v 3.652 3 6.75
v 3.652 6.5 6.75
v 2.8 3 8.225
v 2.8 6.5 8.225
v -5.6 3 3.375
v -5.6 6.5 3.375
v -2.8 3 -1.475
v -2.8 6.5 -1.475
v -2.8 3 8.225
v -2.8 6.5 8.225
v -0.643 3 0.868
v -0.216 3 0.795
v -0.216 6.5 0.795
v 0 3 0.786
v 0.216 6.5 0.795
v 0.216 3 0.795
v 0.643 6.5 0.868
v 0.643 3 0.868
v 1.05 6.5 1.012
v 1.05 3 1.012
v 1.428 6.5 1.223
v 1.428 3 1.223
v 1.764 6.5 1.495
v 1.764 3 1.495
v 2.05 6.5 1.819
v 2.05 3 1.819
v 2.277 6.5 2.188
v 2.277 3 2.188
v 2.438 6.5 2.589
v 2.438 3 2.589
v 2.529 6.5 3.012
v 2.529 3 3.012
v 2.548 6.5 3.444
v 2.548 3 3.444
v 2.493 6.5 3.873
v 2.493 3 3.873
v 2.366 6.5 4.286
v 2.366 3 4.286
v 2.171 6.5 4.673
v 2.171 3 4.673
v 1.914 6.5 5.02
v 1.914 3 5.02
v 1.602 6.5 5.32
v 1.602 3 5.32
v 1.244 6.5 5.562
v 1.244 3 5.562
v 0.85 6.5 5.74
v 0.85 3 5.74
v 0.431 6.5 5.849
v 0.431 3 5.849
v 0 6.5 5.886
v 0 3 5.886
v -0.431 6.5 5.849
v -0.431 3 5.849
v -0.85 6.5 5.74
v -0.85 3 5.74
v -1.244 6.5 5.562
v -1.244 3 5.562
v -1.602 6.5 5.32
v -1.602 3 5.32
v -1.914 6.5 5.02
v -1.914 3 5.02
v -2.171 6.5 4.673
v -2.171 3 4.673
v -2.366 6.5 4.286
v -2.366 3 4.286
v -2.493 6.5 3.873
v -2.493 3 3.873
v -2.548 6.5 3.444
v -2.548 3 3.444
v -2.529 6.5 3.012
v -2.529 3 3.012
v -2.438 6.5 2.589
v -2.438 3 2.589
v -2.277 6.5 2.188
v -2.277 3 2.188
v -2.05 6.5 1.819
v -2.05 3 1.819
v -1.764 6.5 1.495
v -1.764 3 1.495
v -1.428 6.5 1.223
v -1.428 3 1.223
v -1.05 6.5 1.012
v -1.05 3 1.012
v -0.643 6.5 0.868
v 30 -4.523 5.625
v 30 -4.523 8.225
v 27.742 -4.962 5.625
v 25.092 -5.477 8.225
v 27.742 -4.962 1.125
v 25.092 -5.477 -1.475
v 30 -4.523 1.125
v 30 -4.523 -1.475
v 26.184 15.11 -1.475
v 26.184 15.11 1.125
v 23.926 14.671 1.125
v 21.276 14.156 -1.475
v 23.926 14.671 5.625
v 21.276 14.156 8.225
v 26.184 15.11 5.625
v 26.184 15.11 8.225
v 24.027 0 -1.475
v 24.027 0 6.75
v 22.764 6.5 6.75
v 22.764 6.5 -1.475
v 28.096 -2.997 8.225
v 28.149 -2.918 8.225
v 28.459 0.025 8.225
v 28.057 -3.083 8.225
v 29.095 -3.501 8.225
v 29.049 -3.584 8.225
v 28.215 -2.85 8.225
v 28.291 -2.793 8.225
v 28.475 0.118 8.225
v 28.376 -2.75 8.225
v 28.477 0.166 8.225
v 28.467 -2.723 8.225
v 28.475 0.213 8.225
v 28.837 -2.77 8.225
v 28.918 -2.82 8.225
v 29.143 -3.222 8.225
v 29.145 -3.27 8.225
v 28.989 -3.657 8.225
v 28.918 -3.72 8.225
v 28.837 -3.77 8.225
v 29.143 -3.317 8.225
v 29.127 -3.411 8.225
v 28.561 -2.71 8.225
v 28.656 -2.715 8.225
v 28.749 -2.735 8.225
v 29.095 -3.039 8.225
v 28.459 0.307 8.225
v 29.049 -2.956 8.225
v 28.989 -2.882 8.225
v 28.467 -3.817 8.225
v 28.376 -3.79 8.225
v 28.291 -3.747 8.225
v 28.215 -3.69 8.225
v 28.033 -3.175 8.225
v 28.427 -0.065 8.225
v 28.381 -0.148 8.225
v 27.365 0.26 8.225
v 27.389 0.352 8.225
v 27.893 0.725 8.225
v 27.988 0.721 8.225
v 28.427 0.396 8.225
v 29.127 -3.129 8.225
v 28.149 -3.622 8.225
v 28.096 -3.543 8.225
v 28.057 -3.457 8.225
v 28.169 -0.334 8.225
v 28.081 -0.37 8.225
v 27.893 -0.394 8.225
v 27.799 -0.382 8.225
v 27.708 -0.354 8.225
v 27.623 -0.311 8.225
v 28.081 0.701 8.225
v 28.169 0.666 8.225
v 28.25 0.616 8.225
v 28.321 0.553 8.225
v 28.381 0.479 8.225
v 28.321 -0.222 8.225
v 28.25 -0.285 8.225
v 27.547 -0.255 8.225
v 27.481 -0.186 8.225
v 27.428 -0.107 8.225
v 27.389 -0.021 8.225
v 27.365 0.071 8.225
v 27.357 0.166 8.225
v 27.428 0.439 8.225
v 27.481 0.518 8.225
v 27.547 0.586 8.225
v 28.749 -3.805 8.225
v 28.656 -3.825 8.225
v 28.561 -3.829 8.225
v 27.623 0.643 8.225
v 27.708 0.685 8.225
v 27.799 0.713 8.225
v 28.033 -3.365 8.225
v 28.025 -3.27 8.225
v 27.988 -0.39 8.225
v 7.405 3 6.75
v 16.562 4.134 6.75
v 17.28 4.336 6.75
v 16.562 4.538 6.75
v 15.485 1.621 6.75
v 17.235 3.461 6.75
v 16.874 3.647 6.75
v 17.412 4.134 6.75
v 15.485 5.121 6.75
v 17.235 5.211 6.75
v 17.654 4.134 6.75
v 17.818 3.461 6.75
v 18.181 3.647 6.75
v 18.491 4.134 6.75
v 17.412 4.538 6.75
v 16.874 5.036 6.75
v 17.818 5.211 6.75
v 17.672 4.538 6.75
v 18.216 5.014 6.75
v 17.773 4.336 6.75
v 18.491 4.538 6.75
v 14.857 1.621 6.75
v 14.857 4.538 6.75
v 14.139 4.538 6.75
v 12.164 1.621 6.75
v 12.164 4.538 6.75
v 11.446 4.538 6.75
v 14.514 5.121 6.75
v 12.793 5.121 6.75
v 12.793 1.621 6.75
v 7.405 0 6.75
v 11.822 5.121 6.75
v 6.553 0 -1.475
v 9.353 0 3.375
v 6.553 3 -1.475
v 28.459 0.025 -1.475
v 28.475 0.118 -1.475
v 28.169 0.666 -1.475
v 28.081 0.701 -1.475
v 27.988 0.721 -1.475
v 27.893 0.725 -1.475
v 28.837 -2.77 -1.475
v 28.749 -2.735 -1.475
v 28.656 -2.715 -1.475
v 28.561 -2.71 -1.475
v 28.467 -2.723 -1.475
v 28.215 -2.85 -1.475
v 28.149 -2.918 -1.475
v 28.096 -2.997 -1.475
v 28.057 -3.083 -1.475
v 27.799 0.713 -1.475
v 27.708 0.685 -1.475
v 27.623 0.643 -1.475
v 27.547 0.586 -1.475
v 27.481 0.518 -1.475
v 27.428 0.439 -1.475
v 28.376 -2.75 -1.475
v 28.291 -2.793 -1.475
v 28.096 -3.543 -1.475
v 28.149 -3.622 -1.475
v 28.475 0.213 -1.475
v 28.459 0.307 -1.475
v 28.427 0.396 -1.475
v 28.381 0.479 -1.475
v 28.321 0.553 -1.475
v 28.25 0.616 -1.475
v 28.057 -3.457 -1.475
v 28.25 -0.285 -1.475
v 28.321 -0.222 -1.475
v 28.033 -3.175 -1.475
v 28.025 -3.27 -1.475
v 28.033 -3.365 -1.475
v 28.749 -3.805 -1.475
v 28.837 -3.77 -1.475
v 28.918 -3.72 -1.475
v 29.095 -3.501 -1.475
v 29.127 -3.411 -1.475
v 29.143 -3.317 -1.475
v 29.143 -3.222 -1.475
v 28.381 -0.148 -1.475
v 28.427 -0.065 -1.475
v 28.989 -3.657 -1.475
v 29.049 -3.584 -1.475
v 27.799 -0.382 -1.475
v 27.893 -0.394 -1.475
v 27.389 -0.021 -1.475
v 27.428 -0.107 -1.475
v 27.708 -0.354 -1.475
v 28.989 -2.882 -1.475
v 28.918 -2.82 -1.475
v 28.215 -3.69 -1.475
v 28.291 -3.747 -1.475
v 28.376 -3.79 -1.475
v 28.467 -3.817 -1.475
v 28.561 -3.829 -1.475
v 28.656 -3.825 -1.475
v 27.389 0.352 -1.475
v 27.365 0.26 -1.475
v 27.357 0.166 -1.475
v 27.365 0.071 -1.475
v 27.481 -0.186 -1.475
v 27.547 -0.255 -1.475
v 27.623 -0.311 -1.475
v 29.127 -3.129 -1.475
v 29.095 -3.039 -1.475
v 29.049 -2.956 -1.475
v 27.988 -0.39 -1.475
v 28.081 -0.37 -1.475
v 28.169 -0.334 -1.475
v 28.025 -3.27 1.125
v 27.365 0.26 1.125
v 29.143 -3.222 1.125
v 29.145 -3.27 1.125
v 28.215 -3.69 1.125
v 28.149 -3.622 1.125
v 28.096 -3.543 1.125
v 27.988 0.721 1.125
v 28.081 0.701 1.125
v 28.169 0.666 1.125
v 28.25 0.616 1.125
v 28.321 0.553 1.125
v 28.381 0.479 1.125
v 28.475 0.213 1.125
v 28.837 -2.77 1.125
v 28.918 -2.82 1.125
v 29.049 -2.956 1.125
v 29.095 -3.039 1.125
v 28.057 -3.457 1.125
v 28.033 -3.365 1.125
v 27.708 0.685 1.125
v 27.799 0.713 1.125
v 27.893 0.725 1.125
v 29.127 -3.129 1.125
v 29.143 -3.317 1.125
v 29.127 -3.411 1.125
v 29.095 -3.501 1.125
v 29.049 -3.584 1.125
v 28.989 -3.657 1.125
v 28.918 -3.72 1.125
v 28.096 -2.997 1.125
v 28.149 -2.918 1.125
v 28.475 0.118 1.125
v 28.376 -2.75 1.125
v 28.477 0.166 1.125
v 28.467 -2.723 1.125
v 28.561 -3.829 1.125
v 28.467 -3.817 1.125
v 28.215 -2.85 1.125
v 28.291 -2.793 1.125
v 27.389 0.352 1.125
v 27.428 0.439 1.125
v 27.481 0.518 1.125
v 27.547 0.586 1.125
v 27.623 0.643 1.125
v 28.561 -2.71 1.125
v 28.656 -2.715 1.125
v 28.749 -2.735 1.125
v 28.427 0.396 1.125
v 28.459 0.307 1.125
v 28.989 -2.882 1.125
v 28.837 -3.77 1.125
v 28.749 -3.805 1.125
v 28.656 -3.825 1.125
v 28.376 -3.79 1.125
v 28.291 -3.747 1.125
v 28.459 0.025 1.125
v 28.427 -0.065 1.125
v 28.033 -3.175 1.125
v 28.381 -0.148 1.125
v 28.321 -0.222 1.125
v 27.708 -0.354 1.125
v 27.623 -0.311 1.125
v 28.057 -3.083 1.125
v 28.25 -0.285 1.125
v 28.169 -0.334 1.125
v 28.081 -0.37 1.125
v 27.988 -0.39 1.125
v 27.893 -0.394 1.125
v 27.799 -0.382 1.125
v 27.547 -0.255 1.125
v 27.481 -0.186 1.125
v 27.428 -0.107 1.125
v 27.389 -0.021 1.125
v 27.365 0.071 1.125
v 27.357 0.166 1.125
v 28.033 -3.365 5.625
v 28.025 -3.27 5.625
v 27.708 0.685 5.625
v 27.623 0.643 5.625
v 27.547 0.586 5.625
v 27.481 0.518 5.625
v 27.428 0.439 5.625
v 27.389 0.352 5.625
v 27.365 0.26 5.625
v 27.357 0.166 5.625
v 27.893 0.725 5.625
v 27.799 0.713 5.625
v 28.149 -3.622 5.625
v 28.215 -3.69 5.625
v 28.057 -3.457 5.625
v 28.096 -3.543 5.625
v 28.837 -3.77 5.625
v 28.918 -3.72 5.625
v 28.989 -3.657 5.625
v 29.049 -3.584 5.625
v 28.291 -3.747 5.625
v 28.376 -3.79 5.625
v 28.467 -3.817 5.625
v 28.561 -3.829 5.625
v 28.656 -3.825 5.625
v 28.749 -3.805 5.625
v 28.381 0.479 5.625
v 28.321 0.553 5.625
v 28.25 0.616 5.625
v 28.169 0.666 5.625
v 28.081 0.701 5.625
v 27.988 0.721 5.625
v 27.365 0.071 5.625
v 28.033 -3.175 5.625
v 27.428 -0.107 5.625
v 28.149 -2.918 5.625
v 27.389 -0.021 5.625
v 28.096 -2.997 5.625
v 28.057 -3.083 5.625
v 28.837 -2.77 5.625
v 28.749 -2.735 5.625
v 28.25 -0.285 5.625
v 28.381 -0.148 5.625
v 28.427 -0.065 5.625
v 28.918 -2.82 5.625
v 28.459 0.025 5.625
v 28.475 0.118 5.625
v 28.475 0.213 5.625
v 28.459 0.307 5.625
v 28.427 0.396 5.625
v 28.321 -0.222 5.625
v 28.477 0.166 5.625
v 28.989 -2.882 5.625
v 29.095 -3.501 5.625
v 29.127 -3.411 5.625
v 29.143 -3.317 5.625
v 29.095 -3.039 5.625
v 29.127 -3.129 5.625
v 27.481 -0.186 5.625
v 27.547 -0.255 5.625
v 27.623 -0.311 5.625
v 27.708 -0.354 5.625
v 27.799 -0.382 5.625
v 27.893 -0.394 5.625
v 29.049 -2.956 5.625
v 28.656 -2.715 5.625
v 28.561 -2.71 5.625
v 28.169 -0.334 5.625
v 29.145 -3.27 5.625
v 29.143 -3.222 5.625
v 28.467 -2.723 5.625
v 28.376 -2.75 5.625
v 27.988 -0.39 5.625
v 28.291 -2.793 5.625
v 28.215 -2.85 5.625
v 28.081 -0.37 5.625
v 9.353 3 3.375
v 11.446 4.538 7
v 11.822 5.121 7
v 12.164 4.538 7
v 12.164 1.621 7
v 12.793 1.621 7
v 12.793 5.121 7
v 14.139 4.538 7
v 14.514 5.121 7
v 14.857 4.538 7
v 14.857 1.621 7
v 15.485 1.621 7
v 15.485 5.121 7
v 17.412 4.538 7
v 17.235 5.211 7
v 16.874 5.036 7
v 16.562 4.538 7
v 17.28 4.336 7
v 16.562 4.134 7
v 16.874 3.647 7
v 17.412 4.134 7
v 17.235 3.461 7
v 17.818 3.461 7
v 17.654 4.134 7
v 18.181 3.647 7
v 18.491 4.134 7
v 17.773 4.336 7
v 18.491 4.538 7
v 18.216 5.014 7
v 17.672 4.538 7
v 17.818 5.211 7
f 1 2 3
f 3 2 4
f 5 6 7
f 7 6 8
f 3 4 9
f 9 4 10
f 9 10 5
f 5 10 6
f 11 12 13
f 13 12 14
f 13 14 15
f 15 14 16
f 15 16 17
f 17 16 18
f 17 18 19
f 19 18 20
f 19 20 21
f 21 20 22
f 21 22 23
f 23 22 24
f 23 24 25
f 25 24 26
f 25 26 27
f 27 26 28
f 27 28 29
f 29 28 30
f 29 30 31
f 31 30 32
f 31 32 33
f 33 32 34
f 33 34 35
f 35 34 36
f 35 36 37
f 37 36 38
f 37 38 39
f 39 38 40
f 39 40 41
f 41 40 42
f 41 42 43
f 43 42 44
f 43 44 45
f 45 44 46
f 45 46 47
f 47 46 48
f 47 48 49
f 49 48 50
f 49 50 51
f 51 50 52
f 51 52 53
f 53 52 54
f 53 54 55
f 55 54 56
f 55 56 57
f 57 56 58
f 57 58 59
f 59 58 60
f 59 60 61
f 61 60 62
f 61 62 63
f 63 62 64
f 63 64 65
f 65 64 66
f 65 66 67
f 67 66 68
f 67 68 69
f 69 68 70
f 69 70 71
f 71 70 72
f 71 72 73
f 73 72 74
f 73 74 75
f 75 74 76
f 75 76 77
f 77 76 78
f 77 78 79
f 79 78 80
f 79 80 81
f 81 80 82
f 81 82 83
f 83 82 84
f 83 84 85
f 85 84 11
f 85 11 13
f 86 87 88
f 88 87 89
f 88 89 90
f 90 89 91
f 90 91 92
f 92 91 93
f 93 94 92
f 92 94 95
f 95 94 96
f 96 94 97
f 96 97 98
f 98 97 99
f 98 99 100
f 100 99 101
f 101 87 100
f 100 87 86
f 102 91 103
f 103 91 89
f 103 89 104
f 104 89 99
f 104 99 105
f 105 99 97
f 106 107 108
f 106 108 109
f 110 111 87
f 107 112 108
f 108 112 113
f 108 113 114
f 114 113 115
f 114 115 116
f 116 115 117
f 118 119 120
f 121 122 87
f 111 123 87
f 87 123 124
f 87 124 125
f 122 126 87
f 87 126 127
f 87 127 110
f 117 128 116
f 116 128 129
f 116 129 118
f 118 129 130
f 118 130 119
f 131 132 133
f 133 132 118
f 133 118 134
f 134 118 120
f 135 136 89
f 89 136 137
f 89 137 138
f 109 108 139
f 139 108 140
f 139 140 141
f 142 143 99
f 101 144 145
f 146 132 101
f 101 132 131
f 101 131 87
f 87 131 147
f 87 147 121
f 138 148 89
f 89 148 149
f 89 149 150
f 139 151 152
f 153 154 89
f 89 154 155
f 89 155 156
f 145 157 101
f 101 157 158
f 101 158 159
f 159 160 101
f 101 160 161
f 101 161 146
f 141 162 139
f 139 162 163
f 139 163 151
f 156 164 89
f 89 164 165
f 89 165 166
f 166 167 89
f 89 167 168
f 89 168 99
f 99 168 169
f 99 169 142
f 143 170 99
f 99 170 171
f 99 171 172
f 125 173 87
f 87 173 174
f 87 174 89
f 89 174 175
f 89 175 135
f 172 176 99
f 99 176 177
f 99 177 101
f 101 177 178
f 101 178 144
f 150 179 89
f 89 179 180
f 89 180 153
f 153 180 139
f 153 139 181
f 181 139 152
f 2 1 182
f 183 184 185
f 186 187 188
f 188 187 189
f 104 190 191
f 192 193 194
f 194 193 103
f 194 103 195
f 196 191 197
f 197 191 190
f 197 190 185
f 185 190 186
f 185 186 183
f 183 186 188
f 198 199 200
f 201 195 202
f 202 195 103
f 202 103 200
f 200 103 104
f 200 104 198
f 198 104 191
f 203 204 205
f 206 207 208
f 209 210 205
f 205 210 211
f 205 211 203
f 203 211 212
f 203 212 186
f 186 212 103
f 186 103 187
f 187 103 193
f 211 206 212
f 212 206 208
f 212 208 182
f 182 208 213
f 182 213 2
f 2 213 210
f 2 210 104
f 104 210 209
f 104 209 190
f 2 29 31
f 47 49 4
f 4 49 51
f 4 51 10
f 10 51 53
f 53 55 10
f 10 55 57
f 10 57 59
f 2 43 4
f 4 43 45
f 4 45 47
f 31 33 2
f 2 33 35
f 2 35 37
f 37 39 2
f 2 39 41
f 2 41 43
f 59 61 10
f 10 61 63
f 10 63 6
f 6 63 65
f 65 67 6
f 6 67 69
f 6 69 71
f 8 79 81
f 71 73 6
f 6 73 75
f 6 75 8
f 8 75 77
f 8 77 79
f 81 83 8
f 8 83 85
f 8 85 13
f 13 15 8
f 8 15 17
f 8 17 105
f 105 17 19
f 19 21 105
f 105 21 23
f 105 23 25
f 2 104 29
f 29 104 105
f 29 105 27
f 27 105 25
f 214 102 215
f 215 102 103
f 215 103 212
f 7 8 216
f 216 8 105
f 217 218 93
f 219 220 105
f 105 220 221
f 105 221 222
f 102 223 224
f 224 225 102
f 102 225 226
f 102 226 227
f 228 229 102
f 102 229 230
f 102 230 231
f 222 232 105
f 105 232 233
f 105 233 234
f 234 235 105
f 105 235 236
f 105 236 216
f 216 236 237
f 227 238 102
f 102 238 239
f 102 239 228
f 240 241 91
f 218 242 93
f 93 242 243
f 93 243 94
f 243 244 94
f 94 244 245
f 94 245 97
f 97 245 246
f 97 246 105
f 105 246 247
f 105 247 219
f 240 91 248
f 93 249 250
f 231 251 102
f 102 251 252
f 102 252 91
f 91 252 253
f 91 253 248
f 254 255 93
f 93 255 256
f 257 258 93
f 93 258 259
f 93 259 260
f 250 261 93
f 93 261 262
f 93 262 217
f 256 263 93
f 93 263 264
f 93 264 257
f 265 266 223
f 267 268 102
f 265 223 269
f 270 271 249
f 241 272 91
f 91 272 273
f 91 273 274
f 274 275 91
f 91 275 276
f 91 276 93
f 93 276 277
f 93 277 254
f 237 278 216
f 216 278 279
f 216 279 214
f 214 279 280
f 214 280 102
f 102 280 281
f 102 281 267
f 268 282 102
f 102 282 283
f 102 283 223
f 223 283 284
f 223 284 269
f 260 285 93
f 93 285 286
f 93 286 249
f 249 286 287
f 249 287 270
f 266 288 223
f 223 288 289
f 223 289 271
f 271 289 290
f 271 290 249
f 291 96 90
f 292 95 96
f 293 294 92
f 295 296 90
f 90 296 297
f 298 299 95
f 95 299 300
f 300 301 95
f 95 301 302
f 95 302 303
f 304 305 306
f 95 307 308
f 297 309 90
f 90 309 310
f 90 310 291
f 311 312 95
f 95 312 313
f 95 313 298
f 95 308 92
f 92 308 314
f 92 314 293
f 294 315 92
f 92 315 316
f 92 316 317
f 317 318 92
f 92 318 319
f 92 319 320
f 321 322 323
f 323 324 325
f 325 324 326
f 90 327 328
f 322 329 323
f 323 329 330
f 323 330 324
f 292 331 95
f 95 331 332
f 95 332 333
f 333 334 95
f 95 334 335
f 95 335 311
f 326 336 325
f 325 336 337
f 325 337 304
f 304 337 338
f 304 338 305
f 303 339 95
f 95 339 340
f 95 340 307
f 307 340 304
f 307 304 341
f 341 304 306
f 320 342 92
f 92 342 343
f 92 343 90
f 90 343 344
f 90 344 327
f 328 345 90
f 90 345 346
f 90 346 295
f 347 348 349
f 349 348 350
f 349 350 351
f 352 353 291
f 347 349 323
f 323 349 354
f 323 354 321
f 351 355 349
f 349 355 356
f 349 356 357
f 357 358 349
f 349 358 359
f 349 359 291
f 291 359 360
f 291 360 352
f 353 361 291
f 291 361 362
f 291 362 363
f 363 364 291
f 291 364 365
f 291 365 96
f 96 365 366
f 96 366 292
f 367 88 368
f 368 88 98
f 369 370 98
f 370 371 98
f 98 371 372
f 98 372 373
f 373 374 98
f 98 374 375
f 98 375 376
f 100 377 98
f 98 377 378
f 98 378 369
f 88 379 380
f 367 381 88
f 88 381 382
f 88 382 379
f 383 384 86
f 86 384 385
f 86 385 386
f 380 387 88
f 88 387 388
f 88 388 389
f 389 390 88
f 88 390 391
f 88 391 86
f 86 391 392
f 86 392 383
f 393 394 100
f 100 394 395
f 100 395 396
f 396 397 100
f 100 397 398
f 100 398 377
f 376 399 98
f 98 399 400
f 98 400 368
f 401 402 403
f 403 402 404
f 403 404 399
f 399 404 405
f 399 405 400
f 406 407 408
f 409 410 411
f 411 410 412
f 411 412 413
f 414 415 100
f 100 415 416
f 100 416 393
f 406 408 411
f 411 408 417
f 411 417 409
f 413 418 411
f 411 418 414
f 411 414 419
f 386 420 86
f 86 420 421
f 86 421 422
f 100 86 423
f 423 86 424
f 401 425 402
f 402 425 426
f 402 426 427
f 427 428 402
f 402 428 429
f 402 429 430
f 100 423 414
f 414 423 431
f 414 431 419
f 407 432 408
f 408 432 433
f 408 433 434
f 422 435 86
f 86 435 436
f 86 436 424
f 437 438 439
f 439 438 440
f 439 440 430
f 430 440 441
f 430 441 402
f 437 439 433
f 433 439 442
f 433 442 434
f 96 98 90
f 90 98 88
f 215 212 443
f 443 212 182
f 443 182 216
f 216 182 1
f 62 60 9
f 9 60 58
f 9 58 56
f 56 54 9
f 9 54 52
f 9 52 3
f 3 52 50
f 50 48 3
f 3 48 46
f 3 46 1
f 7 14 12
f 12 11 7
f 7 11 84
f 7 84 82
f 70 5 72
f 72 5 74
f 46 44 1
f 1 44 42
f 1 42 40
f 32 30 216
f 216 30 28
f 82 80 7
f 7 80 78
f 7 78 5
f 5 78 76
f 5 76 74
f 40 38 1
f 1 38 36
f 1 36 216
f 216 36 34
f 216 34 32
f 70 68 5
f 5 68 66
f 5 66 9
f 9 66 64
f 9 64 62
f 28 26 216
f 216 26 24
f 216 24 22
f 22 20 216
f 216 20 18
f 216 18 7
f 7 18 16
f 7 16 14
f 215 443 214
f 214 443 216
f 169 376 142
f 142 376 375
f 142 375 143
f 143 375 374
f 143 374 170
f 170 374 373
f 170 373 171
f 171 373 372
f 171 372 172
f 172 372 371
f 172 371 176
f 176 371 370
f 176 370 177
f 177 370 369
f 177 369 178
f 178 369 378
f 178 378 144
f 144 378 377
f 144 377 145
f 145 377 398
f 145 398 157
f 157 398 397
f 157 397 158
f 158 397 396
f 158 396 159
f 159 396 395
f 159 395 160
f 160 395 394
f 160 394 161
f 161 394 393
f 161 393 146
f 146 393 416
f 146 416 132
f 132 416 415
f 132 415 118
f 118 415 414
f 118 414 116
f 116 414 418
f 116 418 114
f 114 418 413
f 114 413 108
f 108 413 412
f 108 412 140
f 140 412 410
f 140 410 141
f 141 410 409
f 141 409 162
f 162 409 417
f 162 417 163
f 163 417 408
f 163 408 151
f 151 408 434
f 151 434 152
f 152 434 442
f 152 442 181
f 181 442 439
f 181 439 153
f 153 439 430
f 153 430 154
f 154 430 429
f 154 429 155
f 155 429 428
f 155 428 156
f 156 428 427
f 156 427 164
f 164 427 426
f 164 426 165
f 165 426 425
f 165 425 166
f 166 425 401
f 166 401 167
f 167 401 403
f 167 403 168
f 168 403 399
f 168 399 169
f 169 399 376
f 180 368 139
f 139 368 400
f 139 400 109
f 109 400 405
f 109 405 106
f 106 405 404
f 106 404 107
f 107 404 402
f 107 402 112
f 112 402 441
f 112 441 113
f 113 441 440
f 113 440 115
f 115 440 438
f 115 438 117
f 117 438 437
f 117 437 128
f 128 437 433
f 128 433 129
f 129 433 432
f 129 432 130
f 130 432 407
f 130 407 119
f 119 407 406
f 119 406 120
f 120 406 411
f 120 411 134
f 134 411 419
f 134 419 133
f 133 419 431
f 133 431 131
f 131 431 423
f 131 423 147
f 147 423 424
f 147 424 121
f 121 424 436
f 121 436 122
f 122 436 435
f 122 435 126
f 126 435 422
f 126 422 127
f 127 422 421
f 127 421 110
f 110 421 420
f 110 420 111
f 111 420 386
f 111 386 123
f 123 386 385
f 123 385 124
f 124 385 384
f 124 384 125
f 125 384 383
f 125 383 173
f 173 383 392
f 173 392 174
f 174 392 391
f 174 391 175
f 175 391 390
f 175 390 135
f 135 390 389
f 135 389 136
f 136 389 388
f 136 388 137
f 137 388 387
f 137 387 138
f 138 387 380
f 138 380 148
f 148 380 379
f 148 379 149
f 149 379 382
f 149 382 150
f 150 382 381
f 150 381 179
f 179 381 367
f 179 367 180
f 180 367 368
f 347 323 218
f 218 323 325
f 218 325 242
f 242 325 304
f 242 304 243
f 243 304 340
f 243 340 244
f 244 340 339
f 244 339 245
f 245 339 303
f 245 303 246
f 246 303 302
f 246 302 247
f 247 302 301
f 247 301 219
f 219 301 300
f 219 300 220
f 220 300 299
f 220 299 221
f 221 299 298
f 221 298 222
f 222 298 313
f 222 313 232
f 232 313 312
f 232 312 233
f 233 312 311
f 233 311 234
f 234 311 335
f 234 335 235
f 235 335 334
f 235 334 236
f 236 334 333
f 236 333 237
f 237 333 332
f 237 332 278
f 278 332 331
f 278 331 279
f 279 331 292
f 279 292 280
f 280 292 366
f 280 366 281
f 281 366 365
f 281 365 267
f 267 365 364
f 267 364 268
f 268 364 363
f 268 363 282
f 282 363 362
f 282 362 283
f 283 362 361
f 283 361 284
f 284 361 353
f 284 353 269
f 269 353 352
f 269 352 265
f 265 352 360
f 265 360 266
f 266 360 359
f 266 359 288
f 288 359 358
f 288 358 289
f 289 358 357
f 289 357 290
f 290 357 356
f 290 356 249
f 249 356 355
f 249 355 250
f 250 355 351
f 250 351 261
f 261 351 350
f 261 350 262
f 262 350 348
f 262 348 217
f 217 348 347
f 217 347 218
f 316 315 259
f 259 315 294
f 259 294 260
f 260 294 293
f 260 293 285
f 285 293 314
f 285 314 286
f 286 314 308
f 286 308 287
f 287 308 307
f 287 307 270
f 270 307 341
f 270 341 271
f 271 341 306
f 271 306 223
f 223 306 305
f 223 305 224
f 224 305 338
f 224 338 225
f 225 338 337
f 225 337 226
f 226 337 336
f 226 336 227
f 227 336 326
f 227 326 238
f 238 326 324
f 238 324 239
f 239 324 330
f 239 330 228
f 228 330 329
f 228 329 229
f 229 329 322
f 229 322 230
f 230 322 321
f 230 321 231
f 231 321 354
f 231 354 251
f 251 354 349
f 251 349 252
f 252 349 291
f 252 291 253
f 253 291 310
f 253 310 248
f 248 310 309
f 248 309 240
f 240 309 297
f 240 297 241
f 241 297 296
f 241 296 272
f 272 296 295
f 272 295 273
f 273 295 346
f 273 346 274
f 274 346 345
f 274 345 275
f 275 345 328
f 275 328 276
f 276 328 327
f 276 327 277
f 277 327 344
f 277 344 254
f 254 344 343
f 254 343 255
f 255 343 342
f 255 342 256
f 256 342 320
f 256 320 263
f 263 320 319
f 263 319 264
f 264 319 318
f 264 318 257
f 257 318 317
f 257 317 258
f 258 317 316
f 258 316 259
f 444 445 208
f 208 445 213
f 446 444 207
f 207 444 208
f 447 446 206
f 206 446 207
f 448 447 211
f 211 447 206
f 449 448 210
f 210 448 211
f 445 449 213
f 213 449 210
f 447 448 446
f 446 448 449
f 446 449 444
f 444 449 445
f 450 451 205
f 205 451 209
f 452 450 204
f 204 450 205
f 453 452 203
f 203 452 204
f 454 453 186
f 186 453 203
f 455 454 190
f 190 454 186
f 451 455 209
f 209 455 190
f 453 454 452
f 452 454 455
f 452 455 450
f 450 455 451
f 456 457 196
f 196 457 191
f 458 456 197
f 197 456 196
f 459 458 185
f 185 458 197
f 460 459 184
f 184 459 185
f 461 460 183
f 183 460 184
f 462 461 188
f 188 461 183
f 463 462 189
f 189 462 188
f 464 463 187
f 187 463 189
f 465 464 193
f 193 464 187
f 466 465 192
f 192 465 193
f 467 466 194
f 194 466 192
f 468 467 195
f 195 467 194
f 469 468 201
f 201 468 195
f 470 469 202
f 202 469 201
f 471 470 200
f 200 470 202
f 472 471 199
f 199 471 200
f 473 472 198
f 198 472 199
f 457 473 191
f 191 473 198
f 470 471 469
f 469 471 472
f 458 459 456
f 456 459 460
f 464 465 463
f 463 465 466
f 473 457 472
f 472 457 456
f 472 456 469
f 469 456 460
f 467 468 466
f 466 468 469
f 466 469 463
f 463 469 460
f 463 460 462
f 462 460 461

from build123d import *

# Parameters (mm, degrees)
SKETCH1_W                       = 25
SKETCH1_H                       = 6.75
BOSS_EXTRUDE1_DEPTH             = 6.5
BOSS_EXTRUDE4_DEPTH             = 6.5
BOSS_EXTRUDE3_REACH             = 6.85
BOSS_EXTRUDE3_DIRECTION_2_REACH = 6.85
SKETCH4_W                       = 2.3
SKETCH4_H                       = 4.5
CUT_EXTRUDE1_DEPTH              = 23
SKETCH6_R                       = 2.55
CUT_EXTRUDE2_DEPTH              = 10
BOSS_EXTRUDE5_DEPTH             = 1.475
CUT_EXTRUDE3_DEPTH              = 3
SKETCH9_R                       = 0.56
CUT_EXTRUDE4_DEPTH              = 9.7
BOSS_EXTRUDE6_DEPTH             = 0.25


with BuildPart() as part:
    # Sketch1 → Boss-Extrude1 (new body)
    with BuildSketch(Plane(origin=(0, 0, 0), x_dir=(1, 0, 0), z_dir=(0, 1, 0))):
        with Locations((12.5, -3.375)):
            Rectangle(SKETCH1_W, SKETCH1_H)
    extrude(amount=BOSS_EXTRUDE1_DEPTH)

    # Sketch5 → Boss-Extrude4 (add)
    with BuildSketch(Plane(origin=(0, 6.5, 0), x_dir=(1, 0, 0), z_dir=(0, 1, 0))):
        Polygon((-5.600297611, -3.375), (-2.800148806, -8.225), (2.800148806, -8.225), (5.600297611, -3.375), (2.800148806, 1.475), (-2.800148806, 1.475), align=None)
    extrude(amount=-BOSS_EXTRUDE4_DEPTH)

    # Boss-Extrude3: up to this face of the body (flat: up to its plane)
    boss_extrude3_end = Plane(part.part.faces().sort_by_distance((0, 3.25, -1.475))[0])
    # Sketch3 → Boss-Extrude3 (add, up to the picked face)
    with BuildSketch(Plane.XY.offset(3.375), mode=Mode.PRIVATE) as boss_extrude3_sk1:
        Polygon((21.275684175, 14.155521181), (26.183820092, 15.109566157), (30, -4.522977512), (25.091864083, -5.477022488), align=None)
    boss_extrude3_tool1 = split(extrude(boss_extrude3_sk1.sketch, amount=-BOSS_EXTRUDE3_REACH, mode=Mode.PRIVATE), bisect_by=boss_extrude3_end, keep=Keep.BOTH, mode=Mode.PRIVATE)
    add(boss_extrude3_tool1.solids().sort_by_distance((25.637842, 4.816272, 3.375))[0])

    # Boss-Extrude3 direction 2: up to this face of the body (flat: up to its plane)
    boss_extrude3_direction_2_end = Plane(part.part.faces().sort_by_distance((0, 3.25, 8.225))[0])
    # Sketch3 → Boss-Extrude3 direction 2 (add, up to the picked face)
    with BuildSketch(Plane.XY.offset(3.375), mode=Mode.PRIVATE) as boss_extrude3_direction_2_sk1:
        Polygon((21.275684175, 14.155521181), (26.183820092, 15.109566157), (30, -4.522977512), (25.091864083, -5.477022488), align=None)
    boss_extrude3_direction_2_tool1 = split(extrude(boss_extrude3_direction_2_sk1.sketch, amount=BOSS_EXTRUDE3_DIRECTION_2_REACH, mode=Mode.PRIVATE), bisect_by=boss_extrude3_direction_2_end, keep=Keep.BOTH, mode=Mode.PRIVATE)
    add(boss_extrude3_direction_2_tool1.solids().sort_by_distance((25.637842, 4.816272, 3.375))[0])

    # Sketch4 → Cut-Extrude1 (cut)
    with BuildSketch(Plane(origin=(-1.876769127, 9.65514015, 0), x_dir=(0.981627183, 0.190808995, 0), z_dir=(-0.190808995, 0.981627183, 0))):
        with Locations((27.435790708, -3.375)):
            Rectangle(SKETCH4_W, SKETCH4_H)
    extrude(amount=-CUT_EXTRUDE1_DEPTH, mode=Mode.SUBTRACT)

    # Sketch6 → Cut-Extrude2 (cut)
    with BuildSketch(Plane(origin=(0, 6.5, 0), x_dir=(1, 0, 0), z_dir=(0, 1, 0))):
        with Locations((0, -3.335615973)):
            Circle(SKETCH6_R)
    extrude(amount=-CUT_EXTRUDE2_DEPTH, mode=Mode.SUBTRACT)

    # Sketch7 → Boss-Extrude5 (add)
    with BuildSketch(Plane(origin=(0, 0, -1.475), x_dir=(-1, 0, 0), z_dir=(0, 0, -1))):
        Polygon((-2.800148806, 0), (-24.027238758, 0), (-25.091864083, -5.477022488), (-30, -4.522977512), (-26.183820092, 15.109566157), (-21.275684175, 14.155521181), (-22.763766749, 6.5), (-2.800148806, 6.5), align=None)
    extrude(amount=-BOSS_EXTRUDE5_DEPTH)

    # Sketch8 → Cut-Extrude3 (cut)
    with BuildSketch(Plane(origin=(0, 0, 0), x_dir=(-1, 0, 0), z_dir=(0, -1, 0))):
        Polygon((-4.67653718, -11.475), (4.67653718, -11.475), (9.353074361, -3.375), (4.67653718, 4.725), (-4.67653718, 4.725), (-9.353074361, -3.375), align=None)
    extrude(amount=-CUT_EXTRUDE3_DEPTH, mode=Mode.SUBTRACT)

    # Sketch9 → Cut-Extrude4 (cut)
    with BuildSketch(Plane(origin=(0, 0, -1.475), x_dir=(-1, 0, 0), z_dir=(0, 0, -1))):
        with Locations((-28.584915246, -3.269967081)):
            Circle(SKETCH9_R)
        with Locations((-27.917083762, 0.165728061)):
            Circle(SKETCH9_R)
    extrude(amount=-CUT_EXTRUDE4_DEPTH, mode=Mode.SUBTRACT)

    # Sketch10 → Boss-Extrude6 (add)
    with BuildSketch(Plane.XY.offset(6.75)):
        Polygon((11.821517388, 5.121255448), (12.792571074, 5.121255448), (12.792571074, 1.621255448), (12.164365946, 1.621255448), (12.164365946, 4.537922115), (11.446417228, 4.537922115), align=None)
        Polygon((14.513825081, 5.121255448), (15.484878766, 5.121255448), (15.484878766, 1.621255448), (14.856673638, 1.621255448), (14.856673638, 4.537922115), (14.13872492, 4.537922115), align=None)
        Polygon((17.234878766, 5.210999038), (17.8182121, 5.210999038), (17.672378766, 4.537922115), (18.215748157, 5.013983814), (18.491289023, 4.537922115), (17.773340305, 4.335999038), (18.491289023, 4.134075961), (18.180692068, 3.647497435), (17.6541496, 4.134075961), (17.8182121, 3.460999038), (17.234878766, 3.460999038), (17.412262581, 4.134075961), (16.873801042, 3.647497435), (16.561801843, 4.134075961), (17.279750561, 4.335999038), (16.561801843, 4.537922115), (16.873801042, 5.036419711), (17.412262581, 4.537922115), align=None)
    extrude(amount=BOSS_EXTRUDE6_DEPTH)


solid = part.part
